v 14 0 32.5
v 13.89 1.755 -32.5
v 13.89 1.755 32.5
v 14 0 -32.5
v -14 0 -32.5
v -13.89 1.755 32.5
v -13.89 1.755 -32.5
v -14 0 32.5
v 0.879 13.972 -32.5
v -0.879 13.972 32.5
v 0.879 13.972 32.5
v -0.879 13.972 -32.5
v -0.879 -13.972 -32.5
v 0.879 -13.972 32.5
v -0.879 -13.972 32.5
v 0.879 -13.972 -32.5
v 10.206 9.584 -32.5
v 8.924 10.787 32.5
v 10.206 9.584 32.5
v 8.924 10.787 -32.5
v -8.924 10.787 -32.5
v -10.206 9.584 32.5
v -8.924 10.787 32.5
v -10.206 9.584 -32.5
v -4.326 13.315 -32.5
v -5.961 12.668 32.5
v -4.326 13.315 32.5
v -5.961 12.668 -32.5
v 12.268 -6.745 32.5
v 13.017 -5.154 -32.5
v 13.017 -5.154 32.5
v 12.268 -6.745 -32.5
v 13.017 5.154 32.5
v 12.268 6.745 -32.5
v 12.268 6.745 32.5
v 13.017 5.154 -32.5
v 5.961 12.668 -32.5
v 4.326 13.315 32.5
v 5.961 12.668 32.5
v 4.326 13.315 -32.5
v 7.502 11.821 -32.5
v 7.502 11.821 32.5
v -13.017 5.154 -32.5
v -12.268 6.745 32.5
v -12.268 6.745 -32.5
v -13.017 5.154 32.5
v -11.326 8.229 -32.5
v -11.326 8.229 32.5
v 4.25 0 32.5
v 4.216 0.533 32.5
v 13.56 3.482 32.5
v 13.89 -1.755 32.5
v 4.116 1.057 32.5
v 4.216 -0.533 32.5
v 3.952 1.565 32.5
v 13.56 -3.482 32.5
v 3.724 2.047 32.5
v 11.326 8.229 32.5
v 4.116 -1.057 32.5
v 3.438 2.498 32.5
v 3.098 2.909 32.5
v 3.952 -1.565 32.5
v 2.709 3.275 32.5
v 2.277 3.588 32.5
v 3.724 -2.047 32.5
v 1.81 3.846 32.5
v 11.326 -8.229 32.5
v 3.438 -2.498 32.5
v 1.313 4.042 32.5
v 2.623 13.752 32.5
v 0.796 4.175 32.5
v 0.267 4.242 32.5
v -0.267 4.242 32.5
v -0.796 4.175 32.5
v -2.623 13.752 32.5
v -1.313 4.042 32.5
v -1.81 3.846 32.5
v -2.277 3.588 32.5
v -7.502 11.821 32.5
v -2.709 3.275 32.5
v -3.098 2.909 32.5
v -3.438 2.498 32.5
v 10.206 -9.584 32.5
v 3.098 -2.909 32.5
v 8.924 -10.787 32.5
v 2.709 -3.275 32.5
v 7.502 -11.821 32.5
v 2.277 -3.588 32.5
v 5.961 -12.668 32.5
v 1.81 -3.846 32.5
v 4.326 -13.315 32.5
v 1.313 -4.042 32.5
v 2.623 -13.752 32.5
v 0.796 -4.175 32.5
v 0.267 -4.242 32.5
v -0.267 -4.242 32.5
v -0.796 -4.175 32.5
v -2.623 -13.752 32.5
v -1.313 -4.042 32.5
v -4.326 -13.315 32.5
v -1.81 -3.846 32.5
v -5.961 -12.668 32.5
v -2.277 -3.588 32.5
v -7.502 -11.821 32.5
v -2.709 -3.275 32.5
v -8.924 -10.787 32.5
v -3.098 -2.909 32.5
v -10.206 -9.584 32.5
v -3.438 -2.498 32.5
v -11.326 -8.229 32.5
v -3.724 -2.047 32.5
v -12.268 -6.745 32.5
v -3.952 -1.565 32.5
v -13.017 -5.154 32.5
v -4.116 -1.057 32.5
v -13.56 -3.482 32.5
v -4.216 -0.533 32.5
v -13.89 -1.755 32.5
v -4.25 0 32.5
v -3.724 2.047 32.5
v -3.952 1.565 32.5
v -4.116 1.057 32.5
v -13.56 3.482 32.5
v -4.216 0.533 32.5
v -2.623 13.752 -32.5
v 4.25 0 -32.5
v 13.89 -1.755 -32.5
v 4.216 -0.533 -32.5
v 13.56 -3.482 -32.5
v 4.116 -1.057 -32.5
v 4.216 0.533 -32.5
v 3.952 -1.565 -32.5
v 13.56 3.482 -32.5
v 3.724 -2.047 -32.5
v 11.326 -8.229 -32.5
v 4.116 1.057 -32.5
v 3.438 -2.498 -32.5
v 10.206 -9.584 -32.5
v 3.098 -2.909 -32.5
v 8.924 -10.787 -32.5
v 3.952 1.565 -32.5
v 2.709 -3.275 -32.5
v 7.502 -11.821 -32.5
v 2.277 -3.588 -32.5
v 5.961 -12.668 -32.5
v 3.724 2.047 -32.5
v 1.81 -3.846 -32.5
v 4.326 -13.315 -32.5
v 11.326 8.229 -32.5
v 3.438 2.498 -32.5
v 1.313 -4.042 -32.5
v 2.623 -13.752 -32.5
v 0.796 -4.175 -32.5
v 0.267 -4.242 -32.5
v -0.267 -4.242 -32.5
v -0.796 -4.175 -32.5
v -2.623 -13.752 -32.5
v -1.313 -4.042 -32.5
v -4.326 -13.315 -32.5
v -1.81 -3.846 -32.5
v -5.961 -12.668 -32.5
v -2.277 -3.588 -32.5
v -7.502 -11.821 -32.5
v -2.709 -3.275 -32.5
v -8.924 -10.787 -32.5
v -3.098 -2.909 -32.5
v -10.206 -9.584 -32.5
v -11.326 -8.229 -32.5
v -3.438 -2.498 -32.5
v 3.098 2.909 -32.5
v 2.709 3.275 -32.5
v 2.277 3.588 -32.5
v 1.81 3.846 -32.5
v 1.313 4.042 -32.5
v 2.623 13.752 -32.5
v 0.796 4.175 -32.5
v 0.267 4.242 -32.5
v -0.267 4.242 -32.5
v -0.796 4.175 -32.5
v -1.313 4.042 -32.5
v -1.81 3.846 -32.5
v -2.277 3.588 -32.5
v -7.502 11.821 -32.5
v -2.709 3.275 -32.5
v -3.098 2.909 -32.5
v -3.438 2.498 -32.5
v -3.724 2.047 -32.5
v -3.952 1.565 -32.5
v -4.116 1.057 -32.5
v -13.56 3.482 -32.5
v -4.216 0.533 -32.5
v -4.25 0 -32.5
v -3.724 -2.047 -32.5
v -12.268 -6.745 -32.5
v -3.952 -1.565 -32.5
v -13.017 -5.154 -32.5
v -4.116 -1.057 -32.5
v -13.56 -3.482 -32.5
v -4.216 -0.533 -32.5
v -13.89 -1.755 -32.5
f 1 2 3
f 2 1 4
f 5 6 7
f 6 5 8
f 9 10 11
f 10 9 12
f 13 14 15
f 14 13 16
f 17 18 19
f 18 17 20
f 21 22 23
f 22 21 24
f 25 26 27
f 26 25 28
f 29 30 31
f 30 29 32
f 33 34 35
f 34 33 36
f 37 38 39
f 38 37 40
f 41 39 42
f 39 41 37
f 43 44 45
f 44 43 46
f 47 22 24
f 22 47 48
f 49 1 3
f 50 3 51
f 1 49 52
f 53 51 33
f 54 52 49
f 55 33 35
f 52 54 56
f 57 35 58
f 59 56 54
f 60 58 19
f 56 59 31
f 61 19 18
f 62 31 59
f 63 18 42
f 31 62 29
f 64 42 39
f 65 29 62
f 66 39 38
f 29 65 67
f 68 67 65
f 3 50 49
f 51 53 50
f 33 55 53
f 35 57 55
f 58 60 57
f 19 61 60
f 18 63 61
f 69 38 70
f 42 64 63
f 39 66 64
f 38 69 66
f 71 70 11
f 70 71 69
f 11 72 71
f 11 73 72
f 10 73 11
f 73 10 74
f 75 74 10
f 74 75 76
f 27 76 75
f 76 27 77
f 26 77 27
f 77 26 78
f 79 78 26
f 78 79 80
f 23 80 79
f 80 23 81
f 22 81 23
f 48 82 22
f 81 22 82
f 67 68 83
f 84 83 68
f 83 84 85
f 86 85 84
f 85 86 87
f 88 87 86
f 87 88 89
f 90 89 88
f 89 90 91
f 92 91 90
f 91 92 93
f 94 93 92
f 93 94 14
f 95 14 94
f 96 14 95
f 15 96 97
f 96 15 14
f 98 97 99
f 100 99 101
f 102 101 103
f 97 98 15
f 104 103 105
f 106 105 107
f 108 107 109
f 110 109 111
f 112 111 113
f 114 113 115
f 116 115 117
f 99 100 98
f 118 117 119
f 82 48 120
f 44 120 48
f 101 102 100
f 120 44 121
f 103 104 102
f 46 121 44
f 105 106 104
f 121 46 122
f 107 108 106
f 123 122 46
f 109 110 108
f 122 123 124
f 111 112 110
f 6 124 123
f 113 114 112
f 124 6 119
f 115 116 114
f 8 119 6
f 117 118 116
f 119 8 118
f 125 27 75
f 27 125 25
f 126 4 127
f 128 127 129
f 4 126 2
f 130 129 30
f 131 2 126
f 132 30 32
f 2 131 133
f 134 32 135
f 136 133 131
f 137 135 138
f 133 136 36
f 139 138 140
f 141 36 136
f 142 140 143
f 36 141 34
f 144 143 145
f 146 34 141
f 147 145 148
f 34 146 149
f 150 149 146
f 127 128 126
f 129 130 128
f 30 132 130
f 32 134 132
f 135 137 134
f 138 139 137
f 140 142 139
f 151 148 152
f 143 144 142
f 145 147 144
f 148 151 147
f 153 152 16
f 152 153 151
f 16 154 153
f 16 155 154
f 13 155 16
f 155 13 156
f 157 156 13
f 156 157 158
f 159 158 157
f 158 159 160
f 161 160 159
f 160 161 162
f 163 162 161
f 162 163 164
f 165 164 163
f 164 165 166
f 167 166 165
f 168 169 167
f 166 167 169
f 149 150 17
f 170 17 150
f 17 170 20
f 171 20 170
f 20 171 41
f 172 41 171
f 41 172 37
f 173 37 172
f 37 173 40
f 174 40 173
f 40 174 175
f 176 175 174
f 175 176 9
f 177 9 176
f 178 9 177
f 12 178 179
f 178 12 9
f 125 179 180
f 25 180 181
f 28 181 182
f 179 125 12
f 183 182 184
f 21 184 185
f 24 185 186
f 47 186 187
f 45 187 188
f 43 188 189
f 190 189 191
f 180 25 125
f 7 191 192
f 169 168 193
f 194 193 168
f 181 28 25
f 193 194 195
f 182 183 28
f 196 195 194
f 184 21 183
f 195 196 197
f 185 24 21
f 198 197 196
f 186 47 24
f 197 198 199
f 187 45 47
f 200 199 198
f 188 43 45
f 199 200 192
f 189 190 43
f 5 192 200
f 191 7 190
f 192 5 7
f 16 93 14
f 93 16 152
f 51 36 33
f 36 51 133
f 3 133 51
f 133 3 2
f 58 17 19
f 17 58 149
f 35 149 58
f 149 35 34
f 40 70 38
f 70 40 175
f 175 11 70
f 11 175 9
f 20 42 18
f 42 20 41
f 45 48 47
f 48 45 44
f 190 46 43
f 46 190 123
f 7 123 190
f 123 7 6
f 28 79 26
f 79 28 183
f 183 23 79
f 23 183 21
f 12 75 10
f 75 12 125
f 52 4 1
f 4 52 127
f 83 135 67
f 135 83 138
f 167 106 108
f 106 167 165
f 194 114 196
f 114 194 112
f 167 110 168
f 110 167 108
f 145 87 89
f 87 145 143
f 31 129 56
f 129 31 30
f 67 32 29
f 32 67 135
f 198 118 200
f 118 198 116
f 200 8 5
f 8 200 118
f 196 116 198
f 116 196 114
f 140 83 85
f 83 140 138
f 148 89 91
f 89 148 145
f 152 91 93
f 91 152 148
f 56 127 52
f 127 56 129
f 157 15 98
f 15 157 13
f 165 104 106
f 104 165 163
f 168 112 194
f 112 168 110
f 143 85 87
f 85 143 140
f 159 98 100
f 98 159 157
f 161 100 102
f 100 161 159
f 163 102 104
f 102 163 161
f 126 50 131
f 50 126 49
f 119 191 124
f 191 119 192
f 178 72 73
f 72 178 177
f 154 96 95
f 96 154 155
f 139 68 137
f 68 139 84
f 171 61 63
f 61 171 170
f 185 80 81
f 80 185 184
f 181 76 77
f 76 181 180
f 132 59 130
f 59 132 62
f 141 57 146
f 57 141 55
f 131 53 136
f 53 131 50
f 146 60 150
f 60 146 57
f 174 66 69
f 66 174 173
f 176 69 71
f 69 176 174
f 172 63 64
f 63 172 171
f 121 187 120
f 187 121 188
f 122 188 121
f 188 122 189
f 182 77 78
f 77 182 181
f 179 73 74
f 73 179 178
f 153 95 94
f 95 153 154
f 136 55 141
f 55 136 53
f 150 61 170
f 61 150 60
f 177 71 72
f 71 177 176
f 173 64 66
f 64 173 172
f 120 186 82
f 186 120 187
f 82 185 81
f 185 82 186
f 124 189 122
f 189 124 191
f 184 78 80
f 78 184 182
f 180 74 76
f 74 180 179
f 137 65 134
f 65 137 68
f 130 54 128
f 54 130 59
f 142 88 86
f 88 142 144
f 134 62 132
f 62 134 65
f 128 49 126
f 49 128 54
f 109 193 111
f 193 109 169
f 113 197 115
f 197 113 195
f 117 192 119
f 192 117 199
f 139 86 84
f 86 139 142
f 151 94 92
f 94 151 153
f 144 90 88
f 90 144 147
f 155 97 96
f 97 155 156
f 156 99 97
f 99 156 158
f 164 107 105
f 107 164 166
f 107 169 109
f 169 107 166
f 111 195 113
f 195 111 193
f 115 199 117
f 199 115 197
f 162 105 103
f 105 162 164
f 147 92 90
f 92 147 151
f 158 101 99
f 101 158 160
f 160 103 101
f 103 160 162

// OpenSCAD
$fn = 50;


difference() {
	union() {
		translate(v = [0, 0, -32.5000000000]) {
			cylinder(h = 65, r = 14.0000000000);
		}
	}
	union() {
		translate(v = [0, 0, -100.0000000000]) {
			cylinder(h = 200, r = 4.2500000000);
		}
	}
}
